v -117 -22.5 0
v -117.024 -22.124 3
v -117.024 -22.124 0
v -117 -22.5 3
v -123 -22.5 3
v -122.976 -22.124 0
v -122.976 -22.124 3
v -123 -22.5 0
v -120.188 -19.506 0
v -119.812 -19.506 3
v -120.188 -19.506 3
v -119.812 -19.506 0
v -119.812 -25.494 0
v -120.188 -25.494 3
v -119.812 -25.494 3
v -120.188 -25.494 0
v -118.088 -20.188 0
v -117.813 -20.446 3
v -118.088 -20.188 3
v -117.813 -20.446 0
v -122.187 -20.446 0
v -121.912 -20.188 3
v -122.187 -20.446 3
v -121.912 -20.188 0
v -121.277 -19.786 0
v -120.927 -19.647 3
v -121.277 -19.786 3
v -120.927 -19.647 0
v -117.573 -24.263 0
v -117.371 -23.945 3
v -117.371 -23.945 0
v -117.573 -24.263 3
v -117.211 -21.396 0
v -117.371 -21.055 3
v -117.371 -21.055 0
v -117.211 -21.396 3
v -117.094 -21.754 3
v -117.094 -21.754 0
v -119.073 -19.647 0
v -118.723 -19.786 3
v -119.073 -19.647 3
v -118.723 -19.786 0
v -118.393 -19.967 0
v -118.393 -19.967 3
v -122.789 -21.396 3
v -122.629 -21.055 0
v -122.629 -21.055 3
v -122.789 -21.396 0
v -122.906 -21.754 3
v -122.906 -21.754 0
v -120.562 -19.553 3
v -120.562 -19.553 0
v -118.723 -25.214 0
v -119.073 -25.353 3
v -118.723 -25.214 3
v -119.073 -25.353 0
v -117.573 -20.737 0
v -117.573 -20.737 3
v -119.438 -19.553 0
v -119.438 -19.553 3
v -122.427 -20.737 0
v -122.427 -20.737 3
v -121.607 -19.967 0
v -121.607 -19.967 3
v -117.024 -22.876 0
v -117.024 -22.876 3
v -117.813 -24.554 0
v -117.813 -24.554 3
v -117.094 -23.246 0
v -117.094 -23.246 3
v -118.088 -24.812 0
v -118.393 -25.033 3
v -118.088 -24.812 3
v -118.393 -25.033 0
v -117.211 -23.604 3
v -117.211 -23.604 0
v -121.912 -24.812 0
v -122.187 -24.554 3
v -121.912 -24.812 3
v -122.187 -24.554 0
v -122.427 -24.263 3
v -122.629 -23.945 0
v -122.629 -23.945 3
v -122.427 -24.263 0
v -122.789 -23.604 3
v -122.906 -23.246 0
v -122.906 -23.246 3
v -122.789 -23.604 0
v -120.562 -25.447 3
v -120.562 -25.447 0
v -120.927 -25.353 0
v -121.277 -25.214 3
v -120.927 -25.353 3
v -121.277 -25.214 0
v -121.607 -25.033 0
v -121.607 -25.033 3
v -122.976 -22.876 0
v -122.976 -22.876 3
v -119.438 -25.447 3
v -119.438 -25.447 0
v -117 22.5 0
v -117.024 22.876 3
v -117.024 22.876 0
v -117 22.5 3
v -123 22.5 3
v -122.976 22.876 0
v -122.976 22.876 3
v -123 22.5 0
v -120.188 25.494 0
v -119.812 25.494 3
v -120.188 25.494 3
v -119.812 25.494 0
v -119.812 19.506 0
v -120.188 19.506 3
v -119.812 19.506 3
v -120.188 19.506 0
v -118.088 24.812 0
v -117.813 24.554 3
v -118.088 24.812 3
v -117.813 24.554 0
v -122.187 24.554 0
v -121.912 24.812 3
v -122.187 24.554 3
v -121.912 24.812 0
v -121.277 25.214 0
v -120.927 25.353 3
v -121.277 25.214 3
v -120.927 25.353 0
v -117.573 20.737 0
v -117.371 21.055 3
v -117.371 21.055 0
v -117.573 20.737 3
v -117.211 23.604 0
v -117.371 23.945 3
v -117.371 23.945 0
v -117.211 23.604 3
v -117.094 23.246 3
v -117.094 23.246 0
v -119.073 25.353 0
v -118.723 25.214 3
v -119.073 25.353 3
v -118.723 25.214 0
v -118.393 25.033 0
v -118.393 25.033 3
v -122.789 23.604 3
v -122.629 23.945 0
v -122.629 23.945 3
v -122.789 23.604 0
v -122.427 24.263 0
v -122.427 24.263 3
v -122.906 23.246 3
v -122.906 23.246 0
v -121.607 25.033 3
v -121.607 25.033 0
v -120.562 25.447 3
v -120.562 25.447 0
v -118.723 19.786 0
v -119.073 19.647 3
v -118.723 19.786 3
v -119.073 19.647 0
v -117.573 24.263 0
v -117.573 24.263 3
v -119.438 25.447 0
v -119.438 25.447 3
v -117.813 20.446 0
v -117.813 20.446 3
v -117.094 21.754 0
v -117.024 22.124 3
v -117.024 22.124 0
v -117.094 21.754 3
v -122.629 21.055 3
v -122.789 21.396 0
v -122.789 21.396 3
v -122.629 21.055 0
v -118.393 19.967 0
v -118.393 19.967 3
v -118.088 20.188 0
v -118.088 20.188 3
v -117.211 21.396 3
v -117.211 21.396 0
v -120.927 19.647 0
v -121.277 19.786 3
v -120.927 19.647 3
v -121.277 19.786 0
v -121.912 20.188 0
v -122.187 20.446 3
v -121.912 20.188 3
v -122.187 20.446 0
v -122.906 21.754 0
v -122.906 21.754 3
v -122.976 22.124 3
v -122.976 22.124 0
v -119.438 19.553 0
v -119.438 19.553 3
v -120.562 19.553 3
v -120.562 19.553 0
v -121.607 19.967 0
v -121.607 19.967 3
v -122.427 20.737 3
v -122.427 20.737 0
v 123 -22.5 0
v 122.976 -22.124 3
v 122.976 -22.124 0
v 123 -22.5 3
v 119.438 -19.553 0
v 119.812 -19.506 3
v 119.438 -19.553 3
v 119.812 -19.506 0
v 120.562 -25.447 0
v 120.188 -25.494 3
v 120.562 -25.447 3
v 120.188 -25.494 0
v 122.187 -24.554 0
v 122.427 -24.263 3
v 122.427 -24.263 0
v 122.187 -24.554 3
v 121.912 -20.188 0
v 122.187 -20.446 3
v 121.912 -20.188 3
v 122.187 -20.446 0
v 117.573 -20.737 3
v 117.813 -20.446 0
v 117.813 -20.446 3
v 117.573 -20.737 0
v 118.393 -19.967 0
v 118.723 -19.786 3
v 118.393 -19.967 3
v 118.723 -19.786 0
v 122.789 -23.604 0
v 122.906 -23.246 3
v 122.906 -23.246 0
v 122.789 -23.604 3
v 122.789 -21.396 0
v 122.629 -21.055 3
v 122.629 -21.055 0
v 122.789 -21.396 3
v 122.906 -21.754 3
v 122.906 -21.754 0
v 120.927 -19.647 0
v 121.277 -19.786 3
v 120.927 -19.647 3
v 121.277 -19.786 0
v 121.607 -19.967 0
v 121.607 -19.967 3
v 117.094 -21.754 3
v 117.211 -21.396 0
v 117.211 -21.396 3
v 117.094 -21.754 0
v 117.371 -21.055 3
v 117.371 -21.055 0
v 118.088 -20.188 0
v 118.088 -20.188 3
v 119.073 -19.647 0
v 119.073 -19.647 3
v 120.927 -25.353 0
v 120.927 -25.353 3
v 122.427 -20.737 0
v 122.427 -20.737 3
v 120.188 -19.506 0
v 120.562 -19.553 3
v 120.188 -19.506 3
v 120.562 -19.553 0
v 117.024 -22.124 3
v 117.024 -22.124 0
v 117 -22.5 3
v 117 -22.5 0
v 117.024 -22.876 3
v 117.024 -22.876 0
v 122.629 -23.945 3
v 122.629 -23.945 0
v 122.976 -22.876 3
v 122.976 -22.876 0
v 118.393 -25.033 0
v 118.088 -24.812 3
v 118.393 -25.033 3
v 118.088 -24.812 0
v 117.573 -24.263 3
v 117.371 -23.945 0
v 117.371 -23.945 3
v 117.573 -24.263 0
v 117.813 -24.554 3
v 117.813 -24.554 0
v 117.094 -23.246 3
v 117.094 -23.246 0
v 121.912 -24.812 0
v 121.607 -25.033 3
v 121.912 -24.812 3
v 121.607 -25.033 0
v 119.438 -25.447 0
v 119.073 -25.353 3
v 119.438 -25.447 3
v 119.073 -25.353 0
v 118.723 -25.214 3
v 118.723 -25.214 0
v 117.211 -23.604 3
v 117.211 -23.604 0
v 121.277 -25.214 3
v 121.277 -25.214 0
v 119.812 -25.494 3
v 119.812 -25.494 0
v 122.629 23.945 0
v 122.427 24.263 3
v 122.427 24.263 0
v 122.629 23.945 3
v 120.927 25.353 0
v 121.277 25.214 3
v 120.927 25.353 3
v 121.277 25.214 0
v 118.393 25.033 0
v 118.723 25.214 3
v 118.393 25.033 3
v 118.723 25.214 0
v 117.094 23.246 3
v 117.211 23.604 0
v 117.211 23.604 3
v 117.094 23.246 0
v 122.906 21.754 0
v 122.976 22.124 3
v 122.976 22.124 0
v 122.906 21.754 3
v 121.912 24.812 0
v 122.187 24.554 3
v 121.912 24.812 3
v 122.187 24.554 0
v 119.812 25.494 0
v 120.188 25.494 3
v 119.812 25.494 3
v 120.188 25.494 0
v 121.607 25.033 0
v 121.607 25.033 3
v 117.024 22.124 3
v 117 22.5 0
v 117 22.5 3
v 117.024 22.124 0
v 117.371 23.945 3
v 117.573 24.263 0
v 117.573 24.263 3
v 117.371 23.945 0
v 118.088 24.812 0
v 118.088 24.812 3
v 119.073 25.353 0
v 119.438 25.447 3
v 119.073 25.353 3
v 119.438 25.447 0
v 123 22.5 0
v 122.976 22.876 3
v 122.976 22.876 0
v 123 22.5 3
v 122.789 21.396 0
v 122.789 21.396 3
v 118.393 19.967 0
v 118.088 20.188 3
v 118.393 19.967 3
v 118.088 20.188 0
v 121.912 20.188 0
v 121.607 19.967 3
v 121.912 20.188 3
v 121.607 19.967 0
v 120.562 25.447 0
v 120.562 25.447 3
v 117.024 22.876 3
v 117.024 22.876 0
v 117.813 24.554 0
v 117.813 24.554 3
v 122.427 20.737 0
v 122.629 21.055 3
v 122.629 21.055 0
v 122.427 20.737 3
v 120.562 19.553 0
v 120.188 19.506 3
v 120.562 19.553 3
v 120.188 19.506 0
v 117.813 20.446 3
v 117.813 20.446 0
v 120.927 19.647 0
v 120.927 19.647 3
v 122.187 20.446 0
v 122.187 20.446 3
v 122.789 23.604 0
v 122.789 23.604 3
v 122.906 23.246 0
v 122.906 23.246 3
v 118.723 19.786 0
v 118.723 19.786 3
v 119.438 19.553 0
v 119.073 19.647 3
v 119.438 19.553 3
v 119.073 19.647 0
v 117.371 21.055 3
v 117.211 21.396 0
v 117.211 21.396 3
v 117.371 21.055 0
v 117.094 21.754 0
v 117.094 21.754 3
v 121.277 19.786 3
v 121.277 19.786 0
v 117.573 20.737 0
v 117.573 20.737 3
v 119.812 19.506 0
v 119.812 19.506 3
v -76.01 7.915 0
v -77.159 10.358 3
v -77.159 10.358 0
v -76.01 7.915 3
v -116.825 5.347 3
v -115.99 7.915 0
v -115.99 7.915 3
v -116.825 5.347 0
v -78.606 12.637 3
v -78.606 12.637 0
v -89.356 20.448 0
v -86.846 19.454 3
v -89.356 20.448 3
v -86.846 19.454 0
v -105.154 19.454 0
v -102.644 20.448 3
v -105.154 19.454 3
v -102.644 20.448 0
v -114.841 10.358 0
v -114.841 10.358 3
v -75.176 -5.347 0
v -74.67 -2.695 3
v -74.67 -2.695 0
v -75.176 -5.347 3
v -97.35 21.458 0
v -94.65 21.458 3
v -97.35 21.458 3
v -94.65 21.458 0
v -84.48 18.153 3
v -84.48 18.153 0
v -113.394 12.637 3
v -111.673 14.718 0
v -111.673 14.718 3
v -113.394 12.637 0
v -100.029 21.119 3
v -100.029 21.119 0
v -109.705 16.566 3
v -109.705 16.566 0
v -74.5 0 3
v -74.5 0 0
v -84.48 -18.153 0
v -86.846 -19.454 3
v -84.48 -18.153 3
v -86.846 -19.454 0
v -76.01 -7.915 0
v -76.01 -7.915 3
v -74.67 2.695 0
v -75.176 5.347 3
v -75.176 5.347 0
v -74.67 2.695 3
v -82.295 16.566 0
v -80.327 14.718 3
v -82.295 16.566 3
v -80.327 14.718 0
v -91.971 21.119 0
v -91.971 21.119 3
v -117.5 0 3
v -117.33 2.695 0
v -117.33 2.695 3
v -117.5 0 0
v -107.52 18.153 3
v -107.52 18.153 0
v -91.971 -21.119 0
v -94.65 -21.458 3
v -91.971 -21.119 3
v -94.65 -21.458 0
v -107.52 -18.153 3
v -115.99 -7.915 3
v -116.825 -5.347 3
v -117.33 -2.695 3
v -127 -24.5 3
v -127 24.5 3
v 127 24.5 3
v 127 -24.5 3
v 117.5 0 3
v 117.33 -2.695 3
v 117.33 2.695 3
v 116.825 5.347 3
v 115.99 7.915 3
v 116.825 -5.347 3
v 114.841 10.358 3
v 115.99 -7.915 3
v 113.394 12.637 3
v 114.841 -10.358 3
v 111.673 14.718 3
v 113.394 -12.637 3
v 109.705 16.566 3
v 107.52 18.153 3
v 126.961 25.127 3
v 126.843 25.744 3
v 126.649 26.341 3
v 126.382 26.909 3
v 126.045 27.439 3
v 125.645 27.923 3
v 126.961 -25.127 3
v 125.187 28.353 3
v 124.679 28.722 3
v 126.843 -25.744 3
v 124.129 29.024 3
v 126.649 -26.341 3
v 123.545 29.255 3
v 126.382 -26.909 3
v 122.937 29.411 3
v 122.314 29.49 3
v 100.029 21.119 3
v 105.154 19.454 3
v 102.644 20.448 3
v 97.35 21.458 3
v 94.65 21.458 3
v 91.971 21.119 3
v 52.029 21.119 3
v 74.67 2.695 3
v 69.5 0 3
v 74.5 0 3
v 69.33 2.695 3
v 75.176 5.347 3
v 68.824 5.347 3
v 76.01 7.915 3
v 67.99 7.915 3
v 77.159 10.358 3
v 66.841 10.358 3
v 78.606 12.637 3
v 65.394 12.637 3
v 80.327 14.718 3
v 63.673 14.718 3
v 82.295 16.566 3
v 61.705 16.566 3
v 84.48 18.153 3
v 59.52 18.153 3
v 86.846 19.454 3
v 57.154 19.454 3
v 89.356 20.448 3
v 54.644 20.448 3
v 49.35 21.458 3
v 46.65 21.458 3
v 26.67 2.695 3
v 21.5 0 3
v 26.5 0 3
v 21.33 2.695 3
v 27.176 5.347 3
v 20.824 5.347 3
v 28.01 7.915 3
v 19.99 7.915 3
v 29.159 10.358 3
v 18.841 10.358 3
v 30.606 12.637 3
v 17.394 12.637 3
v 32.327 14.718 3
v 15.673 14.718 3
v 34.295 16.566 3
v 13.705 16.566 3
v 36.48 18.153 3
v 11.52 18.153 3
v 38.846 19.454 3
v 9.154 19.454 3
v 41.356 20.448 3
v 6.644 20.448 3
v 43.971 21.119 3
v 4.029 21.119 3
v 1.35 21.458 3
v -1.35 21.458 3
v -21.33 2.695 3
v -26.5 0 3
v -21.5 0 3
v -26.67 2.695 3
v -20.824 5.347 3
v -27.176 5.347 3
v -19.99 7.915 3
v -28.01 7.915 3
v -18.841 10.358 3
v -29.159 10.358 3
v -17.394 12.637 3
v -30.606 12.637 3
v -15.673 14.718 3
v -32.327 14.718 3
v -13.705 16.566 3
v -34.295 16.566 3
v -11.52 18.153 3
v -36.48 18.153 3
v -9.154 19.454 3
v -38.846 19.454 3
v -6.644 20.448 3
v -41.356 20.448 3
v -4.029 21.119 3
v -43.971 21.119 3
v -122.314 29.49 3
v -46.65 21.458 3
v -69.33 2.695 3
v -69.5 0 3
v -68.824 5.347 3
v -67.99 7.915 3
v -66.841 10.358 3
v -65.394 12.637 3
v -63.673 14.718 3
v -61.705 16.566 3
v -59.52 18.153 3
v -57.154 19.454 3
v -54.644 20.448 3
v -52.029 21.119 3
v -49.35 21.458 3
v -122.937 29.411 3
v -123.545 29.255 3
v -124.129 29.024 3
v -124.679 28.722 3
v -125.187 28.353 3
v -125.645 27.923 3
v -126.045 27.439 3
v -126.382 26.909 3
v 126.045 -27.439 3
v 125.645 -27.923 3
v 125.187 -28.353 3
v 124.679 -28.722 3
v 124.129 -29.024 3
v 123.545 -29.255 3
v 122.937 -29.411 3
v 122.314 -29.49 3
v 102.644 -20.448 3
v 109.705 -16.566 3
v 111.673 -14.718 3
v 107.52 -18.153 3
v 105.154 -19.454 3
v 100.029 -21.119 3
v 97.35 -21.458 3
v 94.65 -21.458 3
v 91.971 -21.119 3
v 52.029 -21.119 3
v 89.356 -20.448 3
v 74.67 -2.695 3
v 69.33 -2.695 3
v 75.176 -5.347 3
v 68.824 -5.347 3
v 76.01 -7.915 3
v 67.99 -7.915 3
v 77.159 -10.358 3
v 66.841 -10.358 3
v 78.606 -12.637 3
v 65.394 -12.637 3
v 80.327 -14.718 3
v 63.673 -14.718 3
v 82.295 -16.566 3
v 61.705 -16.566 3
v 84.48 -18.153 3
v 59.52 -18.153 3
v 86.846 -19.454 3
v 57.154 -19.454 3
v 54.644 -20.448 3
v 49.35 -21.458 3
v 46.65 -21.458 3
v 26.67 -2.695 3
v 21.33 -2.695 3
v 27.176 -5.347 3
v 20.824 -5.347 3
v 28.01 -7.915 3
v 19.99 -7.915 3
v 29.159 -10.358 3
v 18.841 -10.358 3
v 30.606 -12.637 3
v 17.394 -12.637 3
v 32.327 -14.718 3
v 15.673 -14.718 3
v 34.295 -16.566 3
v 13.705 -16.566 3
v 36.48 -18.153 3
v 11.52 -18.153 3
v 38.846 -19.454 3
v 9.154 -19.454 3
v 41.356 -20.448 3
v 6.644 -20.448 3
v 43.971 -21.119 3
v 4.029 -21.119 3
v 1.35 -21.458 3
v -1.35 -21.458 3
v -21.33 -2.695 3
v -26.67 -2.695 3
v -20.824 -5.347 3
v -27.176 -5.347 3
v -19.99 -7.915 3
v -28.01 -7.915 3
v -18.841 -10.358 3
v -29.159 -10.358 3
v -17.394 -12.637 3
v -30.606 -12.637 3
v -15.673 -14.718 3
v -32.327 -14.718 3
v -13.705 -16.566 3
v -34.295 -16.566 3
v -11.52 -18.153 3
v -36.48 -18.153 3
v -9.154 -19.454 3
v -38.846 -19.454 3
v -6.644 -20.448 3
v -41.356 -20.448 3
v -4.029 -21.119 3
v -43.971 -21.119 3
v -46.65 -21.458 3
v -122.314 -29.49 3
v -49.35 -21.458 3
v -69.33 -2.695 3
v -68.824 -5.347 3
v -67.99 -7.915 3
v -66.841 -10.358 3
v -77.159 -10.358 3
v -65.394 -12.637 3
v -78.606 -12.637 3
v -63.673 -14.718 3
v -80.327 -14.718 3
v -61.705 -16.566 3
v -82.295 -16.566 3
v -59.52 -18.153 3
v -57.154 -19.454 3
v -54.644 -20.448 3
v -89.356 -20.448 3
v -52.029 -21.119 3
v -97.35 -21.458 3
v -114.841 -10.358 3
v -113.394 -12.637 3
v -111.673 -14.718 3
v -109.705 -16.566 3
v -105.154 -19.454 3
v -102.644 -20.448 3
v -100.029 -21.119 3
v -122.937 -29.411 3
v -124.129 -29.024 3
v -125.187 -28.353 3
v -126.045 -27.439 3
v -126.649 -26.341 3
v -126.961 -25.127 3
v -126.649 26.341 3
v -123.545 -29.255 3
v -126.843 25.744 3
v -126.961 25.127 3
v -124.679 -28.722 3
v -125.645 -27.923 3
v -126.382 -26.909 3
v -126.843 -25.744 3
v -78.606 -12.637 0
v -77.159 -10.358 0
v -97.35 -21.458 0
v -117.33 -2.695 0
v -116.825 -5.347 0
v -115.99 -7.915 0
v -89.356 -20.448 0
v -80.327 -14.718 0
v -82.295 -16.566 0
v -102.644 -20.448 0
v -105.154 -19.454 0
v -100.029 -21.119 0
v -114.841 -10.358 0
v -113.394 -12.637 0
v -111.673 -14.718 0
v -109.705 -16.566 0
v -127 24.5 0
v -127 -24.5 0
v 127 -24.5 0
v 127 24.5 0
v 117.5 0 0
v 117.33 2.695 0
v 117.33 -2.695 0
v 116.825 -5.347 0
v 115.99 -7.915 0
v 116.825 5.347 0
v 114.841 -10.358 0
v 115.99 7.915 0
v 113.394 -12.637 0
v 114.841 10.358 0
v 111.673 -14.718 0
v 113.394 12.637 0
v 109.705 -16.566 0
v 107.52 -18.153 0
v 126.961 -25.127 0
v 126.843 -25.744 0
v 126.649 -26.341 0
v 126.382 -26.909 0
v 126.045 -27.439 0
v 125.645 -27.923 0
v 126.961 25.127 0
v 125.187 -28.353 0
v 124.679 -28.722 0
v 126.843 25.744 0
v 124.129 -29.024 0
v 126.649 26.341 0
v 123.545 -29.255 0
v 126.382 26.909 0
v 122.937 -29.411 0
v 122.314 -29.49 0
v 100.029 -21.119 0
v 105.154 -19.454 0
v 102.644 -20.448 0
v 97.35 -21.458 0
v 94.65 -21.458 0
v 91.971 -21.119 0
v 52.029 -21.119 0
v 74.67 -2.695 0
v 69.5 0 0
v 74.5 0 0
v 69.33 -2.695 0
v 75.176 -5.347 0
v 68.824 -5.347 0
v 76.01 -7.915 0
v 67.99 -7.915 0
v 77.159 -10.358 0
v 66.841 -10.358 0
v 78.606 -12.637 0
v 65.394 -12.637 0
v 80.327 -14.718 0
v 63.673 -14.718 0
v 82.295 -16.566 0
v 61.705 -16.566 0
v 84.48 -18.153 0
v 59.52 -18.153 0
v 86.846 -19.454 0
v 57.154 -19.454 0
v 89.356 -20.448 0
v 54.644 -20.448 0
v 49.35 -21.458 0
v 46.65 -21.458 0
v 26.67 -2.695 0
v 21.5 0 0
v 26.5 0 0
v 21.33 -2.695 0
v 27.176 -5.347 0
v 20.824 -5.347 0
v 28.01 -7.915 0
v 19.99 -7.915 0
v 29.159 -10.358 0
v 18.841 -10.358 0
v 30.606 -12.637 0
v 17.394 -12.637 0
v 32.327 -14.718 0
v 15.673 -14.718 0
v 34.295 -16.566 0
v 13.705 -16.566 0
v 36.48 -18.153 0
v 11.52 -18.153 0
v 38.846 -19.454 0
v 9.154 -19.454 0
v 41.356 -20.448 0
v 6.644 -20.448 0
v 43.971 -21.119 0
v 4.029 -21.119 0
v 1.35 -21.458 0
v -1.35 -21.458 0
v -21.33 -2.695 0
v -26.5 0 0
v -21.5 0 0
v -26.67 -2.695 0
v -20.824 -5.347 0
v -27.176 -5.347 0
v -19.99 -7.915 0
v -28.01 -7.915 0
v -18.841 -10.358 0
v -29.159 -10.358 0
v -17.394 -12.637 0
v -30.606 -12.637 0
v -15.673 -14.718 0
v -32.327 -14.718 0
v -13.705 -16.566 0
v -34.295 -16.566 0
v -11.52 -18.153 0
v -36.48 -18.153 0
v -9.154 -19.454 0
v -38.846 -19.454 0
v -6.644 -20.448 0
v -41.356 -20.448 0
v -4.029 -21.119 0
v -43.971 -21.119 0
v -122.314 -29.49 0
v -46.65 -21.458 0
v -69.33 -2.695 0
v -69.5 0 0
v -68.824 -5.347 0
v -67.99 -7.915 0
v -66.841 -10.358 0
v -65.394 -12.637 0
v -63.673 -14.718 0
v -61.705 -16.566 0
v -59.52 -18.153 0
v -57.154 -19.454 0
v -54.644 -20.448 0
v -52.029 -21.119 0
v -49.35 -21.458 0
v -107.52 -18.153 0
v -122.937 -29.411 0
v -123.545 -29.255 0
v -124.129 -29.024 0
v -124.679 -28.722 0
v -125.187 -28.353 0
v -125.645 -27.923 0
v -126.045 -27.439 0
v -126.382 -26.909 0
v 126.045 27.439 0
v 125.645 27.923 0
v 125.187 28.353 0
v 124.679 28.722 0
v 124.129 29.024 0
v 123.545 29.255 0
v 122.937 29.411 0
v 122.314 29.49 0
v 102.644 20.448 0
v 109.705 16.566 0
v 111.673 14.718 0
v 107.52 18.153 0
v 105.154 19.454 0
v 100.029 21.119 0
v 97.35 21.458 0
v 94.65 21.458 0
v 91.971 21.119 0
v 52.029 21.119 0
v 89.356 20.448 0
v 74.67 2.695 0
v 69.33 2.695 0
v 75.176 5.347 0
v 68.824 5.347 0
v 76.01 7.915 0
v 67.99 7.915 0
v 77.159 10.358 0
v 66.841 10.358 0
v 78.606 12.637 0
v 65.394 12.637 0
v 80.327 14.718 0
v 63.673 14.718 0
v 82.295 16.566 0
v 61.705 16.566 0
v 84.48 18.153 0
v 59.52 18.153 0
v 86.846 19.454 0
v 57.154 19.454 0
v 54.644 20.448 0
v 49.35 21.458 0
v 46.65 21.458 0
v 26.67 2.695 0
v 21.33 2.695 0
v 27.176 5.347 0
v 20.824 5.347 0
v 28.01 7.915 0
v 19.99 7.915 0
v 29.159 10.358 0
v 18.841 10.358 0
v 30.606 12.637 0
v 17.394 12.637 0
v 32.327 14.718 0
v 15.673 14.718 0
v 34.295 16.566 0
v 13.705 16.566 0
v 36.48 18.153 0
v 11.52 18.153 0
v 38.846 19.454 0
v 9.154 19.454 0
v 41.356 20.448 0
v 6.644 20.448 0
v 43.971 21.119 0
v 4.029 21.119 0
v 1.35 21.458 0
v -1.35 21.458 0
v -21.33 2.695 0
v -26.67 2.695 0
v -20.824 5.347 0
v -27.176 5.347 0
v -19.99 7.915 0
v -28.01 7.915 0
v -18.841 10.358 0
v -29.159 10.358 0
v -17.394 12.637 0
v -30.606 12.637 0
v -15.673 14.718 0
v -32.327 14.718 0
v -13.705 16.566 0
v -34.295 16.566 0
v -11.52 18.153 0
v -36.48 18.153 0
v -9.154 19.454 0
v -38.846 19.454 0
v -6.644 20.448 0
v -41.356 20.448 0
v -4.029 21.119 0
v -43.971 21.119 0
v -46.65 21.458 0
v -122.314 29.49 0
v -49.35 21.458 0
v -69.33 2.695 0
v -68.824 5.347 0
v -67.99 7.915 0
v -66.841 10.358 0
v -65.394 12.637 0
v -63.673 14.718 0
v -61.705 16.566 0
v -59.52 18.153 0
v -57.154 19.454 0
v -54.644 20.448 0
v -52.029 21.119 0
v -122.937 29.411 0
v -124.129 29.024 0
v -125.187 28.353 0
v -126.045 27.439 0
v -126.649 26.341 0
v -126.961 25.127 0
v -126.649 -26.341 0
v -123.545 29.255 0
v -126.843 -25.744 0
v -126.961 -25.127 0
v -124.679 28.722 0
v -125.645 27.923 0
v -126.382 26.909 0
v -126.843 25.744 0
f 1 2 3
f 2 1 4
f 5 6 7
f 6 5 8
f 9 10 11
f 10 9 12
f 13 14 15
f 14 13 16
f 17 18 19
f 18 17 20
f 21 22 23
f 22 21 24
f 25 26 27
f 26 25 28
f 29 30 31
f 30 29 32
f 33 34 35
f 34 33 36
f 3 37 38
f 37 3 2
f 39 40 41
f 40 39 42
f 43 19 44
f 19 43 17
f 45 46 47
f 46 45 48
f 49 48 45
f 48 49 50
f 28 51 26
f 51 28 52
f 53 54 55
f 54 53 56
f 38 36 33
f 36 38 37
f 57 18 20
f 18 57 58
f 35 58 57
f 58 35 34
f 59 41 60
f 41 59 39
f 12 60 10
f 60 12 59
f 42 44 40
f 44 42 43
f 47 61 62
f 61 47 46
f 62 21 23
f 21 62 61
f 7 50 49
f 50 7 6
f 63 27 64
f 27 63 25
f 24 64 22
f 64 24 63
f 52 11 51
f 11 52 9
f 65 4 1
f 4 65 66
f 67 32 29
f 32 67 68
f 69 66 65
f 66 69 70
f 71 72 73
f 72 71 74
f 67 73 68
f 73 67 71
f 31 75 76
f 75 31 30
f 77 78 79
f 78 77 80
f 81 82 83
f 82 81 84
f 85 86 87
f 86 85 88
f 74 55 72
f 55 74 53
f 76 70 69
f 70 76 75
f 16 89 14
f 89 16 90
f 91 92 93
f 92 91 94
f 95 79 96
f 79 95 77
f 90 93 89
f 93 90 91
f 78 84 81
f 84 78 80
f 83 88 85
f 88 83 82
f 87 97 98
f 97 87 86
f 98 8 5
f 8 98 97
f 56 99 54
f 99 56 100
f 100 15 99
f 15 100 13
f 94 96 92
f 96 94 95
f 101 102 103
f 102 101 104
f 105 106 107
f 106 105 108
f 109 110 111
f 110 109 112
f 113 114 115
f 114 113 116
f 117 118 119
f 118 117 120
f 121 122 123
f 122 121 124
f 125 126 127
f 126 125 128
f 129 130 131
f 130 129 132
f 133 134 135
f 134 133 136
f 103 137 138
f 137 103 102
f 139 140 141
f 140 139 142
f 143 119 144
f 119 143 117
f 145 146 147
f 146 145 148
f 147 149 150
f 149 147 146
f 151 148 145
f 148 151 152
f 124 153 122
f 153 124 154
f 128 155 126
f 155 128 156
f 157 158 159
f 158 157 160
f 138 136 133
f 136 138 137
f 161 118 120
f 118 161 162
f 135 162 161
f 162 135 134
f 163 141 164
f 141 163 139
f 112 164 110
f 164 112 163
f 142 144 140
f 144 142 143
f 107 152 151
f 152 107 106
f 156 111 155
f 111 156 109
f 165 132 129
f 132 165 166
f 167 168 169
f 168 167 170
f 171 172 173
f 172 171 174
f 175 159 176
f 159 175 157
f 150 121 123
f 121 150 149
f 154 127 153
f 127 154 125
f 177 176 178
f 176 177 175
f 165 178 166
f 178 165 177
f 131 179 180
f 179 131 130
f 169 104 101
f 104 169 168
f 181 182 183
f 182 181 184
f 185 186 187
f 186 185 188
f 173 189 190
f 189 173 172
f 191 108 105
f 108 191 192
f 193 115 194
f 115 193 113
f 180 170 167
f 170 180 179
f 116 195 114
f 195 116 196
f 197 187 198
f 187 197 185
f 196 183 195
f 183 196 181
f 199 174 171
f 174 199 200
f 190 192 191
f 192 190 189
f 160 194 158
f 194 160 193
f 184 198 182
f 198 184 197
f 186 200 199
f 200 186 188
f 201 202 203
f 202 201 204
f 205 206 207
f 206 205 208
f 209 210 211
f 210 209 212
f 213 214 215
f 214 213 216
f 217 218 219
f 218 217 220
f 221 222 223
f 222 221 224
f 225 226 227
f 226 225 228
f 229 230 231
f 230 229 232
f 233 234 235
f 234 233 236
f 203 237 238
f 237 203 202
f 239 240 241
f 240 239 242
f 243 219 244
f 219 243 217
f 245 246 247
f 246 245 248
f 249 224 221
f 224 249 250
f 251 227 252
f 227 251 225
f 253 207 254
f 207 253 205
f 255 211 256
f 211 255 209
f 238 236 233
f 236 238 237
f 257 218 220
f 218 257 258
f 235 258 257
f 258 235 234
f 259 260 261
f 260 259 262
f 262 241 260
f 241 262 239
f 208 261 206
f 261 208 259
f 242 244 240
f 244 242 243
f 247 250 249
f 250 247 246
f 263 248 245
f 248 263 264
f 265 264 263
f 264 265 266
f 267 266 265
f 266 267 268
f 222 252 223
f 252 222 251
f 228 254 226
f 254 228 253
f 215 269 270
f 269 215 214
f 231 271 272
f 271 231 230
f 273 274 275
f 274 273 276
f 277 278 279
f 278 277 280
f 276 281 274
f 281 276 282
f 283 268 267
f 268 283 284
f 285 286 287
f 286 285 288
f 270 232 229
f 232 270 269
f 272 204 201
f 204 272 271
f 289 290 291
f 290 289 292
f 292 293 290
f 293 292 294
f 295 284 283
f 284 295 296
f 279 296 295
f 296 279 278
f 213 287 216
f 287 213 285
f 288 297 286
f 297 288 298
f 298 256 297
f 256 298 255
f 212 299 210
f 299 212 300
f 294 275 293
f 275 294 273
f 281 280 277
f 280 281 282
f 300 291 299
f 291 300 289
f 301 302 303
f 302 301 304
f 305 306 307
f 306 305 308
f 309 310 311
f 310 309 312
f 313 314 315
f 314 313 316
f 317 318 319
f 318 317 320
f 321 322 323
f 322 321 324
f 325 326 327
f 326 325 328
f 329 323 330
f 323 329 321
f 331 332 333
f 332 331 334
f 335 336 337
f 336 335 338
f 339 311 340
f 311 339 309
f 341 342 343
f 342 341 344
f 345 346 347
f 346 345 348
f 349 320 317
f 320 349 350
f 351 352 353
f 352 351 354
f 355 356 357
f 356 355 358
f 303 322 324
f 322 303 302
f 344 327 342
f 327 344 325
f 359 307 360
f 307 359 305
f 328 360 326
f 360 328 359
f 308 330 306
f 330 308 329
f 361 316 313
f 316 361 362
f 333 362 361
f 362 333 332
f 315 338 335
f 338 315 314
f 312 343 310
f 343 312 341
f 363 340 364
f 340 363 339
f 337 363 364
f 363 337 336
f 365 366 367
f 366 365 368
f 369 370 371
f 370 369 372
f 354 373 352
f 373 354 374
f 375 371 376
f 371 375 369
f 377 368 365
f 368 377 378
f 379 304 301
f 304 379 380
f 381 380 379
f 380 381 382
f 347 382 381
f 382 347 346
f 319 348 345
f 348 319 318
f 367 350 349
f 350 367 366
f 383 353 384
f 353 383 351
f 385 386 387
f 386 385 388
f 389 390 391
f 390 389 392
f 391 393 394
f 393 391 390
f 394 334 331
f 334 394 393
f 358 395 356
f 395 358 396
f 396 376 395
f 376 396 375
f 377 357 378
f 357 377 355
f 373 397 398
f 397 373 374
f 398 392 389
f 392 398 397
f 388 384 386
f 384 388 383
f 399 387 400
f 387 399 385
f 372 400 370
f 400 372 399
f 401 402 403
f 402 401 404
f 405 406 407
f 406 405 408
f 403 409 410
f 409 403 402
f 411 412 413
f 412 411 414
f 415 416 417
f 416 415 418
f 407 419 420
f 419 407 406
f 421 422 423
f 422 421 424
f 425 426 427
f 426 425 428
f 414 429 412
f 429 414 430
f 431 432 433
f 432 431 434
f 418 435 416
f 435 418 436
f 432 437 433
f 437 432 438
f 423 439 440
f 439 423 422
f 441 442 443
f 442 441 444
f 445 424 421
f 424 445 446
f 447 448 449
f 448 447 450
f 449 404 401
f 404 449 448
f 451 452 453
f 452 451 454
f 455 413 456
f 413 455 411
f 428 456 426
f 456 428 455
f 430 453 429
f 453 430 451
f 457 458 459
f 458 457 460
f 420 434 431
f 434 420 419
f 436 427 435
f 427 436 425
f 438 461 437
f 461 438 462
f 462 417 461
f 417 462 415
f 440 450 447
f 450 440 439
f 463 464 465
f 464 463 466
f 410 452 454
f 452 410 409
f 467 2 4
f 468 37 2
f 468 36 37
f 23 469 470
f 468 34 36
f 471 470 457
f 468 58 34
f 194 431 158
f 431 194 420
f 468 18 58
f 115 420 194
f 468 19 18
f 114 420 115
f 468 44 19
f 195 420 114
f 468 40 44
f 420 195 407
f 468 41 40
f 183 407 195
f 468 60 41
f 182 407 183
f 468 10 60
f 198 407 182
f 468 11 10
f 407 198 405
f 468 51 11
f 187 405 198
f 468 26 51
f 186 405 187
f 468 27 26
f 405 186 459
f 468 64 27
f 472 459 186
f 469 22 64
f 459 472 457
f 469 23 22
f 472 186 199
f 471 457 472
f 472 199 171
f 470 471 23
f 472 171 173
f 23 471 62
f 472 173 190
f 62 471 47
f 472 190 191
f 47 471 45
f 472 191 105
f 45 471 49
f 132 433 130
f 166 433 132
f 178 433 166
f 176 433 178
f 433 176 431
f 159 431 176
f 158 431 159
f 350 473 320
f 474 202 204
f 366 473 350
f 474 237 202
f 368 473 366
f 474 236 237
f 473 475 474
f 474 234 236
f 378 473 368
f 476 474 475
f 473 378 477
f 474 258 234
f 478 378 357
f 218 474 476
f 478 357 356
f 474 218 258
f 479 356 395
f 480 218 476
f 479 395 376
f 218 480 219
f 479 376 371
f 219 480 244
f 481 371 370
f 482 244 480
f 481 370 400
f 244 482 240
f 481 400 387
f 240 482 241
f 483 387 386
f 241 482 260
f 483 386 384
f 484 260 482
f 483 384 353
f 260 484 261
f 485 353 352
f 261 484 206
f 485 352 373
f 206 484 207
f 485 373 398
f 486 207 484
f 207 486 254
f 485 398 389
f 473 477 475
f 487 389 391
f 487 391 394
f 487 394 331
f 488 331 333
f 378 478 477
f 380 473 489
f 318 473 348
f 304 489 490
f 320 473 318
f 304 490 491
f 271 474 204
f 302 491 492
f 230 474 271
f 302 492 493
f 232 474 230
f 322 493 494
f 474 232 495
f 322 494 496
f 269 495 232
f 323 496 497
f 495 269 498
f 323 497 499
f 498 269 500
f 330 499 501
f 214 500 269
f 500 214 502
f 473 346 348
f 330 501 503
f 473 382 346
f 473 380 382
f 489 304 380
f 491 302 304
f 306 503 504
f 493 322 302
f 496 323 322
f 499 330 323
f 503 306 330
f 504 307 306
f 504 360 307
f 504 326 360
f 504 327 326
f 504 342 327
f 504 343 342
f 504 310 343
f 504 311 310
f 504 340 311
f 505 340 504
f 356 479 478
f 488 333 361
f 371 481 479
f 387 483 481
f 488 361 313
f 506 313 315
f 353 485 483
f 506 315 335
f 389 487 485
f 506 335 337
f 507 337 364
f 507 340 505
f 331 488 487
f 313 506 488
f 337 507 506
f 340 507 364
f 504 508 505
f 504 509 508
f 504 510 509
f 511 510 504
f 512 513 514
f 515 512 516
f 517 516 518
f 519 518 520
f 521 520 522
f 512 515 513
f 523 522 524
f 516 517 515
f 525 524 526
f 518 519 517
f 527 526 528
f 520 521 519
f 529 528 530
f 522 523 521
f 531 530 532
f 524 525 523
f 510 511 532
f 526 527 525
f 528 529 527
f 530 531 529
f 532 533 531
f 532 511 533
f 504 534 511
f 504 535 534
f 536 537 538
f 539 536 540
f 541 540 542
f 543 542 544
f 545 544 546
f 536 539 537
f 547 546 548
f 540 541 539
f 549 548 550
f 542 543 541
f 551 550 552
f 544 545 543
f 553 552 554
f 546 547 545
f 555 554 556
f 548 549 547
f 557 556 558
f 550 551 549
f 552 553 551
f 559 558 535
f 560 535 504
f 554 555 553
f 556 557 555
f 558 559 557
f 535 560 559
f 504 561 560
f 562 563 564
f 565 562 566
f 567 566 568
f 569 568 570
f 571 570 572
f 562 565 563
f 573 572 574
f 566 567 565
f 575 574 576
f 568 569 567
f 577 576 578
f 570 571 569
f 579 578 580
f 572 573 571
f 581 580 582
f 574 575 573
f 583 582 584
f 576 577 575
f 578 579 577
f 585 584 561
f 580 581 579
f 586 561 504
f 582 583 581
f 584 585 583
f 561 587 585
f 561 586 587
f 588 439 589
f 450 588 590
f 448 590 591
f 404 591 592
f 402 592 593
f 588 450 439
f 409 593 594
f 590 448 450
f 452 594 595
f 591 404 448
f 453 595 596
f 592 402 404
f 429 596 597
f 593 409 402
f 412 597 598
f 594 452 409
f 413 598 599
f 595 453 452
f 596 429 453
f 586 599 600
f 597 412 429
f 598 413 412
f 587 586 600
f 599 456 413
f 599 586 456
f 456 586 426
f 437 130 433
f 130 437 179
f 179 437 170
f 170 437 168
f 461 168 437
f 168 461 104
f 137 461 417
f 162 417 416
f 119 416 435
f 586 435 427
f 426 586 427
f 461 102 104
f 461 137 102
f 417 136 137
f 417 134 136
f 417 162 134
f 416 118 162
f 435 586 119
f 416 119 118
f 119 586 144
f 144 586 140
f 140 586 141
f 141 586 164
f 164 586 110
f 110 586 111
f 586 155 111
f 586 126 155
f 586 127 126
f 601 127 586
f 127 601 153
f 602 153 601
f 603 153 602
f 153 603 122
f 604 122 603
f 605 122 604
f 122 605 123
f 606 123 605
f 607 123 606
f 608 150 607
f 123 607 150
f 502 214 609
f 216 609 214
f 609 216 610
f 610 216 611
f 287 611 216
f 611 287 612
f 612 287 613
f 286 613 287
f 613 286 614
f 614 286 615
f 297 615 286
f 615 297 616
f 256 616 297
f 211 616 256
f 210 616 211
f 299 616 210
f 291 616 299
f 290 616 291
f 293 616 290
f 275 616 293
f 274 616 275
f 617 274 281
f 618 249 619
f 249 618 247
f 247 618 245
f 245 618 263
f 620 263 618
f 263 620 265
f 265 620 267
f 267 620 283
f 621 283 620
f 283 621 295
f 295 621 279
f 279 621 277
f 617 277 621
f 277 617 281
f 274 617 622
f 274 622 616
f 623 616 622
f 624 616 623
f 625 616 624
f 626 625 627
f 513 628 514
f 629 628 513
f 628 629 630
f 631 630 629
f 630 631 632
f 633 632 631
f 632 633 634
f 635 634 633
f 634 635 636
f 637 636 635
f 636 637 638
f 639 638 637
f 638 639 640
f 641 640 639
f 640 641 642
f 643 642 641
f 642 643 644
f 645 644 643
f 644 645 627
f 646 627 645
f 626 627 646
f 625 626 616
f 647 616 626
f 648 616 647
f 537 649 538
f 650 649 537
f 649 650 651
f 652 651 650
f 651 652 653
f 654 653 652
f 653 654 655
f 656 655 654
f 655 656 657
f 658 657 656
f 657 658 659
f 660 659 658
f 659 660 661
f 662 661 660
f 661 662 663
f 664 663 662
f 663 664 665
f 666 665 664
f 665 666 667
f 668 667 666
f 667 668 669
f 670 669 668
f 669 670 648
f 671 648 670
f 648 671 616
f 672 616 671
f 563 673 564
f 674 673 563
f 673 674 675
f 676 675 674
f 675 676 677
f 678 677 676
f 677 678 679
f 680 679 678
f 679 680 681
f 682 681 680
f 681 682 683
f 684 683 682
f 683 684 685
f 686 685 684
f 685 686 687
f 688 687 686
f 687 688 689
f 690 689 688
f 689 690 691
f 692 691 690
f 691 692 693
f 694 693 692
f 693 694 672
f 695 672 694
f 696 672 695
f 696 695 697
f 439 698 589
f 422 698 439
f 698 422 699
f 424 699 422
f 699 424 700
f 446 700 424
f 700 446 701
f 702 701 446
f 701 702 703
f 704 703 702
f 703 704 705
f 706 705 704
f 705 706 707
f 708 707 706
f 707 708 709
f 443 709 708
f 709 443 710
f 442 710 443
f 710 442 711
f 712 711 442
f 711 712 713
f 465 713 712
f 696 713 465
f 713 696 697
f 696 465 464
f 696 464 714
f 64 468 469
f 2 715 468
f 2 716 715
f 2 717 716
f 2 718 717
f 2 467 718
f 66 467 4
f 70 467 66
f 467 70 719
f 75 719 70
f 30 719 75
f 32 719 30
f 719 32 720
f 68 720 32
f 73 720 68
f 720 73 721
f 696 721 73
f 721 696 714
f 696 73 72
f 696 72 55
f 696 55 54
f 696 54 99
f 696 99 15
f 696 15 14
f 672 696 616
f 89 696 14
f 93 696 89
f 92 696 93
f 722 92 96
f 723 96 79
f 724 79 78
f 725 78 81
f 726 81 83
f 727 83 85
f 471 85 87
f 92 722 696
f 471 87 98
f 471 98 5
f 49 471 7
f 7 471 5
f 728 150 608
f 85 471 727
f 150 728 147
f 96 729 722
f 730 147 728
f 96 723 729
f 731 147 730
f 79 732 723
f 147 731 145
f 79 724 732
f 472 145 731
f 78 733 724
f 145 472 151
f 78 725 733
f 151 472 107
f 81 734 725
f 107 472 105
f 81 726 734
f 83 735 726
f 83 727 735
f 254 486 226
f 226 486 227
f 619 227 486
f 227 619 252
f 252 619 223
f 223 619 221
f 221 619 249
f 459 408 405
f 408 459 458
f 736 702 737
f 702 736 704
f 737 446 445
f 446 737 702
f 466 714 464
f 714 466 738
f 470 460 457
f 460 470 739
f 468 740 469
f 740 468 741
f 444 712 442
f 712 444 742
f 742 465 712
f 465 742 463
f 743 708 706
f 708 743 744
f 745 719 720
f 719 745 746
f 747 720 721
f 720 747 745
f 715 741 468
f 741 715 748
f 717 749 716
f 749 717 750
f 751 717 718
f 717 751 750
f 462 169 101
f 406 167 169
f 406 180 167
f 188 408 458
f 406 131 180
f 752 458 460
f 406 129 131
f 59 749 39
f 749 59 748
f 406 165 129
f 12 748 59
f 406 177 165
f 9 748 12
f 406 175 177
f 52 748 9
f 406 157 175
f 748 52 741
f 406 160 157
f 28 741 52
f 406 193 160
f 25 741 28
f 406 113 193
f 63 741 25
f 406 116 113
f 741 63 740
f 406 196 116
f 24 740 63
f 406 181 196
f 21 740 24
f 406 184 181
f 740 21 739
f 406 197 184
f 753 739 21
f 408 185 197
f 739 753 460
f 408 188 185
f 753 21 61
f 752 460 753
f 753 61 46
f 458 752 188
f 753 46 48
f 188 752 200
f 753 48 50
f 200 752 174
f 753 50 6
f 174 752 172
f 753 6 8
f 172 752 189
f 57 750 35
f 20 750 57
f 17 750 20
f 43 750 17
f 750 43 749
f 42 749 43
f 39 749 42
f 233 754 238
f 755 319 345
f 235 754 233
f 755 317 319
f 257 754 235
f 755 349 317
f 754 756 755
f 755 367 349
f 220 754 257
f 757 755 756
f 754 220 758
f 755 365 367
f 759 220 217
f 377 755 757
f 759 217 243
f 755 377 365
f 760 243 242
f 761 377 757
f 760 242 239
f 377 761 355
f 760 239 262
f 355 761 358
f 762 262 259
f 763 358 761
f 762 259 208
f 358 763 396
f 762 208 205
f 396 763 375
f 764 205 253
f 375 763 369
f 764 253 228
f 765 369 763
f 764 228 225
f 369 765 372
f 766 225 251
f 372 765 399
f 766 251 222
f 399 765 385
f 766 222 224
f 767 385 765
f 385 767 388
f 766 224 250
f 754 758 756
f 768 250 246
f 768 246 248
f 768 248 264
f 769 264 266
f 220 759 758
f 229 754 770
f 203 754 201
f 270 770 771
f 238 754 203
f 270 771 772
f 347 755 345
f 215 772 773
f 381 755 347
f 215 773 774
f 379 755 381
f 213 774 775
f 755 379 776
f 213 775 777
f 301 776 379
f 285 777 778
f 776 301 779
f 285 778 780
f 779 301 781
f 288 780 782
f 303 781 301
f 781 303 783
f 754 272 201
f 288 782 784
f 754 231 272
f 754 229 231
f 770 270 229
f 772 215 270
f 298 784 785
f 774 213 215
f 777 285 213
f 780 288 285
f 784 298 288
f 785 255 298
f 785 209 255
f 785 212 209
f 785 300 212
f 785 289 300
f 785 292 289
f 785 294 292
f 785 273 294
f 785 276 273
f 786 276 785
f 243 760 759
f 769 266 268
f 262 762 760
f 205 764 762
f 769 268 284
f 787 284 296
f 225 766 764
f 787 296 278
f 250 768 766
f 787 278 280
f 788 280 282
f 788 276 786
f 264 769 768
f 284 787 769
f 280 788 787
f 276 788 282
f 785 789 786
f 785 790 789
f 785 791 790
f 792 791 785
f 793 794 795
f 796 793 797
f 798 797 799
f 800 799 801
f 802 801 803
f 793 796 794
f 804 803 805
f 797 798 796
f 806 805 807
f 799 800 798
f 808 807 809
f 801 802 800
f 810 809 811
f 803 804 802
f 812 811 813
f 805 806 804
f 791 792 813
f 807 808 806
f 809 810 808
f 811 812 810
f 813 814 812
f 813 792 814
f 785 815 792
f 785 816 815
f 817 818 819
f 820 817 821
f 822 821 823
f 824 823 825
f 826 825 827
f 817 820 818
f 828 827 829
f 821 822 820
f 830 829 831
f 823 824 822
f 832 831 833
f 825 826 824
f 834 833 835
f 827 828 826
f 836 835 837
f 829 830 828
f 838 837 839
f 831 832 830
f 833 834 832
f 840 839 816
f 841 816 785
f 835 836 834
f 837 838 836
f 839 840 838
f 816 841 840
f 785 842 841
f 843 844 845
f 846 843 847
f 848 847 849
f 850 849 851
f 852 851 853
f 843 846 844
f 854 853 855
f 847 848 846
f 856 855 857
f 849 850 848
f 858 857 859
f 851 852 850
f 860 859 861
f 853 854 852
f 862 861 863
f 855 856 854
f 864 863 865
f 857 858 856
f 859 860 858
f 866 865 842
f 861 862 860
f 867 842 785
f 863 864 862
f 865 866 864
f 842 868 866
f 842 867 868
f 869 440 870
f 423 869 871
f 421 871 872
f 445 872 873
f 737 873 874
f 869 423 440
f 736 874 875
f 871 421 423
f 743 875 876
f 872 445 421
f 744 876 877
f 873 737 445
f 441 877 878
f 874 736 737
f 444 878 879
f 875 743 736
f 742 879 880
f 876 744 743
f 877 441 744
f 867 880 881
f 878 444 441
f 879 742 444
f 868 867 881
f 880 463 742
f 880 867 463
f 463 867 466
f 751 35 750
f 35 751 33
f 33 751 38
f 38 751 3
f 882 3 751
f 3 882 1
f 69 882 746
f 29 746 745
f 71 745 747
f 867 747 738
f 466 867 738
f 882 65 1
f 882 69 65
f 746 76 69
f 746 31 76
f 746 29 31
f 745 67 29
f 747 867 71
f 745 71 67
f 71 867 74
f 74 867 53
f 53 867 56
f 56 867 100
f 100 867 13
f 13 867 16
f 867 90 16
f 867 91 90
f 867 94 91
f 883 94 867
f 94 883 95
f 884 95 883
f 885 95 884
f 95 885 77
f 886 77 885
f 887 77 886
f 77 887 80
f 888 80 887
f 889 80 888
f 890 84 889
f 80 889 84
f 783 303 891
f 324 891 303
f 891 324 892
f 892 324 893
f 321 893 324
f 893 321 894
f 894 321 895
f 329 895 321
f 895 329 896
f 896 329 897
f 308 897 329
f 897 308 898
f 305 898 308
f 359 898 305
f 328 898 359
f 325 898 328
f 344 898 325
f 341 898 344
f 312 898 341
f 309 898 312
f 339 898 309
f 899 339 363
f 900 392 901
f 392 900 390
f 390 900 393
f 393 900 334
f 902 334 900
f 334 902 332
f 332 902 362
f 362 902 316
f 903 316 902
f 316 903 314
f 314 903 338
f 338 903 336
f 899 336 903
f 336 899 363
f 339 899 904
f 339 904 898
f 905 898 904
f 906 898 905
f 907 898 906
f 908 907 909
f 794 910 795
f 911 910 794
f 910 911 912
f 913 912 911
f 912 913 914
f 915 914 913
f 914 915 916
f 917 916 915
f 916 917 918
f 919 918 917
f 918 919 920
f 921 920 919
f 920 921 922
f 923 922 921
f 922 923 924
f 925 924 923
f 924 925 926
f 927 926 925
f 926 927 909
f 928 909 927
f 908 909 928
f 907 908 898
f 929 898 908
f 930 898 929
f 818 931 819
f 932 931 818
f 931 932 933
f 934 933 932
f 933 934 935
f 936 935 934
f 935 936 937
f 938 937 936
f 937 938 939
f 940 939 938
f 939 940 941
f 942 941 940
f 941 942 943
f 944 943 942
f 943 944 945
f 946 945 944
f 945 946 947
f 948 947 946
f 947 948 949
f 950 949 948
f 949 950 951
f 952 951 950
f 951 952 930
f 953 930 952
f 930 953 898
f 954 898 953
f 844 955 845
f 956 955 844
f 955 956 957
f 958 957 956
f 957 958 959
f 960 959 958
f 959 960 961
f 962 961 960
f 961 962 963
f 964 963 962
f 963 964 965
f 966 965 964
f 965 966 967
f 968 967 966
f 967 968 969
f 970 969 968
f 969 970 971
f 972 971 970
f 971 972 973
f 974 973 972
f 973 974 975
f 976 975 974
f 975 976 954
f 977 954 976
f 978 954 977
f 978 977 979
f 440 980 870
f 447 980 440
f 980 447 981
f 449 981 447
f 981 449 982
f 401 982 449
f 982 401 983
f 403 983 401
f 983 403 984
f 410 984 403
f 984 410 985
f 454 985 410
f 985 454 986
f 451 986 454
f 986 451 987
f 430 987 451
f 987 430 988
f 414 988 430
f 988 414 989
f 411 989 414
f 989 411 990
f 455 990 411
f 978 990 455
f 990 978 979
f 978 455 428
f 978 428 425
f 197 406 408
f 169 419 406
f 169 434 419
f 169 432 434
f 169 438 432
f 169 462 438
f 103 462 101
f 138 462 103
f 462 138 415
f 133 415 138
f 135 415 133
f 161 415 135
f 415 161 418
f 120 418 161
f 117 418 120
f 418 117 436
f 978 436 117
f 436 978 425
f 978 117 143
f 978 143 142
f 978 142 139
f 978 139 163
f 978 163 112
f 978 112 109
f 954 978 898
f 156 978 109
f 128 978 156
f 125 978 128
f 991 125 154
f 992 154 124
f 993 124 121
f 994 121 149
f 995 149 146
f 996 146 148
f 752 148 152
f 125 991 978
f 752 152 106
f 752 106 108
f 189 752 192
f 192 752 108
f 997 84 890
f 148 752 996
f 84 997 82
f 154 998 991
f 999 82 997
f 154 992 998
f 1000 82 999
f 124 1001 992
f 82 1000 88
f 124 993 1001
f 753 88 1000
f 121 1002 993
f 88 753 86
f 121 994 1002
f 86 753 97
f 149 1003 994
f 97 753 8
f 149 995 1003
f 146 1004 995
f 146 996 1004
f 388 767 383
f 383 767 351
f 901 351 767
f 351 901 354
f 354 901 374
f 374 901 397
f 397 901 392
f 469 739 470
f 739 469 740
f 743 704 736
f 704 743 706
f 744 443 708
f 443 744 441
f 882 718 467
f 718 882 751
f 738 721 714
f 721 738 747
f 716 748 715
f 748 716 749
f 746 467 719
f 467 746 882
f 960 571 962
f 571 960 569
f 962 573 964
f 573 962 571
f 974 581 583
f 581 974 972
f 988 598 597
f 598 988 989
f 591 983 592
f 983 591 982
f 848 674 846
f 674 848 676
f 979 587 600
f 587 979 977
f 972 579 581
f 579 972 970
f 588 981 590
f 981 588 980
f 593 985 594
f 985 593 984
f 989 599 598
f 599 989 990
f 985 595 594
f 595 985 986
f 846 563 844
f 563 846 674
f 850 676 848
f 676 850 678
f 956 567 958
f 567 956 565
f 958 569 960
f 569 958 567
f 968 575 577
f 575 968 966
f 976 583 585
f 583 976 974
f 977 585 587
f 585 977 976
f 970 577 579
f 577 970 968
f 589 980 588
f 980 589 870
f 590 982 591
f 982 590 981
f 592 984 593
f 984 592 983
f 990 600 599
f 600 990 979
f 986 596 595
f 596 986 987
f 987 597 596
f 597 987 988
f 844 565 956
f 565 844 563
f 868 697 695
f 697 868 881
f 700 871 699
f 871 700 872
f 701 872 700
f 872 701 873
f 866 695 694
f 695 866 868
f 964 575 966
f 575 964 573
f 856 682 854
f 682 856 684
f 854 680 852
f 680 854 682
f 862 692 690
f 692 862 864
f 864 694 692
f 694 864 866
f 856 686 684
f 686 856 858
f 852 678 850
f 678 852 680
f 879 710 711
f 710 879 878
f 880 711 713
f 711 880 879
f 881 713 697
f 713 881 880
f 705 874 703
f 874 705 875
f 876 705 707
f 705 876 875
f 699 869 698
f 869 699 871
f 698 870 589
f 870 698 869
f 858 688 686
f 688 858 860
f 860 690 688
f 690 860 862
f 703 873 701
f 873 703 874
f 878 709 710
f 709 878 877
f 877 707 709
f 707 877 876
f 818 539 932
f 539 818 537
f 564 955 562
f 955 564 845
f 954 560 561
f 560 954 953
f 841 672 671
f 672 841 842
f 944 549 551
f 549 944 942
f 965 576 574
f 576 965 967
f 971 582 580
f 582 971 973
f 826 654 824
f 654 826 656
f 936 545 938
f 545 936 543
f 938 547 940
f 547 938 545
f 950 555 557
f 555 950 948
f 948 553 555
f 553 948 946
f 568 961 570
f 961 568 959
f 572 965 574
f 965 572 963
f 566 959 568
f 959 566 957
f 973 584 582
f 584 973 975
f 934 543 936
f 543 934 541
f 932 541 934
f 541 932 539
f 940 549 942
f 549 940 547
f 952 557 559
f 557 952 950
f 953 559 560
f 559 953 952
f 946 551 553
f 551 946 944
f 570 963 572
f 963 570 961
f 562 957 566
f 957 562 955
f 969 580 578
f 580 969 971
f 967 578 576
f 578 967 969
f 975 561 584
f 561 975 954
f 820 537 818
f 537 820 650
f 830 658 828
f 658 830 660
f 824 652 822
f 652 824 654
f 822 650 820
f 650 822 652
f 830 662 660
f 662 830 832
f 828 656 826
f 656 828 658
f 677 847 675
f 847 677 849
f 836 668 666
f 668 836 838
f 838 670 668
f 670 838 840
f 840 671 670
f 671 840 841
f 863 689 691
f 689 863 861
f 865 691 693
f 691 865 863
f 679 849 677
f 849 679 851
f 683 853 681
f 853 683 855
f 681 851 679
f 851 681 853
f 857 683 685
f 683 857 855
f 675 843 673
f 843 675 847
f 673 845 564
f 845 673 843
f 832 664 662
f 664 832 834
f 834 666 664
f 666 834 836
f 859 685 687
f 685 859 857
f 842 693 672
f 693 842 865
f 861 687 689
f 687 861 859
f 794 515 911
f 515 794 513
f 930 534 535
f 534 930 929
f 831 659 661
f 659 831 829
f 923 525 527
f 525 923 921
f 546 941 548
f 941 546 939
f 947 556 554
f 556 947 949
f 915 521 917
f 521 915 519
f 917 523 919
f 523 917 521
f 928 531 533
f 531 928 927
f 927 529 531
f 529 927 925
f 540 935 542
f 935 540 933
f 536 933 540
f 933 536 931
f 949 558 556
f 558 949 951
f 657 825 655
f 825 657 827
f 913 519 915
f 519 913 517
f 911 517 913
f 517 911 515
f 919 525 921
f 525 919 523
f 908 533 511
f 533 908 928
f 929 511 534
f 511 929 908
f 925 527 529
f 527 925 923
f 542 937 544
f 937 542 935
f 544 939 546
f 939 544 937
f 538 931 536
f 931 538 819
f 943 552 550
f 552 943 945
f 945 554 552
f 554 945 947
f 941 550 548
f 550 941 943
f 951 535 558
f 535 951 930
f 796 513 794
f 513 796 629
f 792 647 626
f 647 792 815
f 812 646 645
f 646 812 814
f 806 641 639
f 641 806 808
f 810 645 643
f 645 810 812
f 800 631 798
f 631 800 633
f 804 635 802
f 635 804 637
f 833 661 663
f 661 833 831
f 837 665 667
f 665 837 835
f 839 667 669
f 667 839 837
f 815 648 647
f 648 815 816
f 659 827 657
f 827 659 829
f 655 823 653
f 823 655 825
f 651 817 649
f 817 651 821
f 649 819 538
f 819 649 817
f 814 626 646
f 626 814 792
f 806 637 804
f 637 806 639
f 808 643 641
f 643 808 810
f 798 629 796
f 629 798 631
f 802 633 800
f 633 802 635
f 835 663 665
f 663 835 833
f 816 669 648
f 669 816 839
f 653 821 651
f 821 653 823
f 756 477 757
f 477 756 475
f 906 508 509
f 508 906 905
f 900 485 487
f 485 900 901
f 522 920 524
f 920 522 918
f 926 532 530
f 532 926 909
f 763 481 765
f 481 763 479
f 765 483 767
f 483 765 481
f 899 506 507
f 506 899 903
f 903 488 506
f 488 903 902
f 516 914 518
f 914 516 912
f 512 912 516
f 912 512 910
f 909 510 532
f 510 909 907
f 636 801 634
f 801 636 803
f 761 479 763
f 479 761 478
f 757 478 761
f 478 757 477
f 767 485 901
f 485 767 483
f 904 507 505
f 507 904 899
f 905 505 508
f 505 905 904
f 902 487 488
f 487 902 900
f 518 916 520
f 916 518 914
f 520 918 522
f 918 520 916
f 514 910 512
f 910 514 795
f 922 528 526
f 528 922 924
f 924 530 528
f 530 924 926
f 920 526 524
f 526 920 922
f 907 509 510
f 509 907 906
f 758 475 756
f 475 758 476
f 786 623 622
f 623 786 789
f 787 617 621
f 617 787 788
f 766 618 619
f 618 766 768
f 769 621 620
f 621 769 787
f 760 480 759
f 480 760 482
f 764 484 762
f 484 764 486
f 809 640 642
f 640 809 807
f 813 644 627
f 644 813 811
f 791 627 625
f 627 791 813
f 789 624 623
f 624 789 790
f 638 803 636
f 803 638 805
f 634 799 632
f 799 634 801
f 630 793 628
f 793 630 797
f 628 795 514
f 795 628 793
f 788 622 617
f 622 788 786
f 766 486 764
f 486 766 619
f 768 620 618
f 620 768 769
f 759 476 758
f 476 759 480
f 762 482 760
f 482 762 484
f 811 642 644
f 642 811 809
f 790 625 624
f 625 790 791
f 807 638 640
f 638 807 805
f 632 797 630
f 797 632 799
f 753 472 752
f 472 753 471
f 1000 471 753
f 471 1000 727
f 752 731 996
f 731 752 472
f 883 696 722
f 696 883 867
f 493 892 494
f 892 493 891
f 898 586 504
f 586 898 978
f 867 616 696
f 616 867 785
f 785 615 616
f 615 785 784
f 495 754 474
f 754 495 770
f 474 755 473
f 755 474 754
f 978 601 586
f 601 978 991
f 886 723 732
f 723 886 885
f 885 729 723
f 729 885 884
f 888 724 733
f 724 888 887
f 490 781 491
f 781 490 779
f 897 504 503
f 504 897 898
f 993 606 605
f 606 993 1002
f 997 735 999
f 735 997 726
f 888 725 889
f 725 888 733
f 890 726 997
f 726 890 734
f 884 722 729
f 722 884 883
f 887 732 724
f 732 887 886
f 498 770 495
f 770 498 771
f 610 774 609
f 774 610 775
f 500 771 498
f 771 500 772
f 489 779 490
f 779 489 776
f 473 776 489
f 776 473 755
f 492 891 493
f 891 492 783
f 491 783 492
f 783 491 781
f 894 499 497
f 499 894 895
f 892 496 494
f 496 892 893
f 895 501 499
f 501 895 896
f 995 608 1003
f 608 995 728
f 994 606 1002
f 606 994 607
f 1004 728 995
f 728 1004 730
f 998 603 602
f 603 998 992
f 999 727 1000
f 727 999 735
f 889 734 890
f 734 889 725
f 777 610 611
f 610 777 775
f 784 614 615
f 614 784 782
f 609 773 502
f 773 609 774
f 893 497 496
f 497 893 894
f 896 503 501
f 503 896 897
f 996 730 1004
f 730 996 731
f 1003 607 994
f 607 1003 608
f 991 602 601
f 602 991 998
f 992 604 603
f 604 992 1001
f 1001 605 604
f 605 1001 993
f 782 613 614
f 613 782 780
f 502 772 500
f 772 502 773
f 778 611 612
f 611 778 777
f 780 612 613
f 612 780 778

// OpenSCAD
$fn = 50;


difference() {
	union() {
		hull() {
			translate(v = [-122.0000000000, 24.5000000000, 0]) {
				cylinder(h = 3, r = 5);
			}
			translate(v = [122.0000000000, 24.5000000000, 0]) {
				cylinder(h = 3, r = 5);
			}
			translate(v = [-122.0000000000, -24.5000000000, 0]) {
				cylinder(h = 3, r = 5);
			}
			translate(v = [122.0000000000, -24.5000000000, 0]) {
				cylinder(h = 3, r = 5);
			}
		}
	}
	union() {
		#translate(v = [-120.0000000000, -22.5000000000, -100.0000000000]) {
			cylinder(h = 200, r = 3.0000000000);
		}
		#translate(v = [-120.0000000000, 22.5000000000, -100.0000000000]) {
			cylinder(h = 200, r = 3.0000000000);
		}
		#translate(v = [120.0000000000, -22.5000000000, -100.0000000000]) {
			cylinder(h = 200, r = 3.0000000000);
		}
		#translate(v = [120.0000000000, 22.5000000000, -100.0000000000]) {
			cylinder(h = 200, r = 3.0000000000);
		}
		#translate(v = [-96.0000000000, 0, 0]) {
			cylinder(h = 3, r = 21.5000000000);
		}
		#translate(v = [-48.0000000000, 0, 0]) {
			cylinder(h = 3, r = 21.5000000000);
		}
		#cylinder(h = 3, r = 21.5000000000);
		#translate(v = [48.0000000000, 0, 0]) {
			cylinder(h = 3, r = 21.5000000000);
		}
		#translate(v = [96.0000000000, 0, 0]) {
			cylinder(h = 3, r = 21.5000000000);
		}
	}
}
